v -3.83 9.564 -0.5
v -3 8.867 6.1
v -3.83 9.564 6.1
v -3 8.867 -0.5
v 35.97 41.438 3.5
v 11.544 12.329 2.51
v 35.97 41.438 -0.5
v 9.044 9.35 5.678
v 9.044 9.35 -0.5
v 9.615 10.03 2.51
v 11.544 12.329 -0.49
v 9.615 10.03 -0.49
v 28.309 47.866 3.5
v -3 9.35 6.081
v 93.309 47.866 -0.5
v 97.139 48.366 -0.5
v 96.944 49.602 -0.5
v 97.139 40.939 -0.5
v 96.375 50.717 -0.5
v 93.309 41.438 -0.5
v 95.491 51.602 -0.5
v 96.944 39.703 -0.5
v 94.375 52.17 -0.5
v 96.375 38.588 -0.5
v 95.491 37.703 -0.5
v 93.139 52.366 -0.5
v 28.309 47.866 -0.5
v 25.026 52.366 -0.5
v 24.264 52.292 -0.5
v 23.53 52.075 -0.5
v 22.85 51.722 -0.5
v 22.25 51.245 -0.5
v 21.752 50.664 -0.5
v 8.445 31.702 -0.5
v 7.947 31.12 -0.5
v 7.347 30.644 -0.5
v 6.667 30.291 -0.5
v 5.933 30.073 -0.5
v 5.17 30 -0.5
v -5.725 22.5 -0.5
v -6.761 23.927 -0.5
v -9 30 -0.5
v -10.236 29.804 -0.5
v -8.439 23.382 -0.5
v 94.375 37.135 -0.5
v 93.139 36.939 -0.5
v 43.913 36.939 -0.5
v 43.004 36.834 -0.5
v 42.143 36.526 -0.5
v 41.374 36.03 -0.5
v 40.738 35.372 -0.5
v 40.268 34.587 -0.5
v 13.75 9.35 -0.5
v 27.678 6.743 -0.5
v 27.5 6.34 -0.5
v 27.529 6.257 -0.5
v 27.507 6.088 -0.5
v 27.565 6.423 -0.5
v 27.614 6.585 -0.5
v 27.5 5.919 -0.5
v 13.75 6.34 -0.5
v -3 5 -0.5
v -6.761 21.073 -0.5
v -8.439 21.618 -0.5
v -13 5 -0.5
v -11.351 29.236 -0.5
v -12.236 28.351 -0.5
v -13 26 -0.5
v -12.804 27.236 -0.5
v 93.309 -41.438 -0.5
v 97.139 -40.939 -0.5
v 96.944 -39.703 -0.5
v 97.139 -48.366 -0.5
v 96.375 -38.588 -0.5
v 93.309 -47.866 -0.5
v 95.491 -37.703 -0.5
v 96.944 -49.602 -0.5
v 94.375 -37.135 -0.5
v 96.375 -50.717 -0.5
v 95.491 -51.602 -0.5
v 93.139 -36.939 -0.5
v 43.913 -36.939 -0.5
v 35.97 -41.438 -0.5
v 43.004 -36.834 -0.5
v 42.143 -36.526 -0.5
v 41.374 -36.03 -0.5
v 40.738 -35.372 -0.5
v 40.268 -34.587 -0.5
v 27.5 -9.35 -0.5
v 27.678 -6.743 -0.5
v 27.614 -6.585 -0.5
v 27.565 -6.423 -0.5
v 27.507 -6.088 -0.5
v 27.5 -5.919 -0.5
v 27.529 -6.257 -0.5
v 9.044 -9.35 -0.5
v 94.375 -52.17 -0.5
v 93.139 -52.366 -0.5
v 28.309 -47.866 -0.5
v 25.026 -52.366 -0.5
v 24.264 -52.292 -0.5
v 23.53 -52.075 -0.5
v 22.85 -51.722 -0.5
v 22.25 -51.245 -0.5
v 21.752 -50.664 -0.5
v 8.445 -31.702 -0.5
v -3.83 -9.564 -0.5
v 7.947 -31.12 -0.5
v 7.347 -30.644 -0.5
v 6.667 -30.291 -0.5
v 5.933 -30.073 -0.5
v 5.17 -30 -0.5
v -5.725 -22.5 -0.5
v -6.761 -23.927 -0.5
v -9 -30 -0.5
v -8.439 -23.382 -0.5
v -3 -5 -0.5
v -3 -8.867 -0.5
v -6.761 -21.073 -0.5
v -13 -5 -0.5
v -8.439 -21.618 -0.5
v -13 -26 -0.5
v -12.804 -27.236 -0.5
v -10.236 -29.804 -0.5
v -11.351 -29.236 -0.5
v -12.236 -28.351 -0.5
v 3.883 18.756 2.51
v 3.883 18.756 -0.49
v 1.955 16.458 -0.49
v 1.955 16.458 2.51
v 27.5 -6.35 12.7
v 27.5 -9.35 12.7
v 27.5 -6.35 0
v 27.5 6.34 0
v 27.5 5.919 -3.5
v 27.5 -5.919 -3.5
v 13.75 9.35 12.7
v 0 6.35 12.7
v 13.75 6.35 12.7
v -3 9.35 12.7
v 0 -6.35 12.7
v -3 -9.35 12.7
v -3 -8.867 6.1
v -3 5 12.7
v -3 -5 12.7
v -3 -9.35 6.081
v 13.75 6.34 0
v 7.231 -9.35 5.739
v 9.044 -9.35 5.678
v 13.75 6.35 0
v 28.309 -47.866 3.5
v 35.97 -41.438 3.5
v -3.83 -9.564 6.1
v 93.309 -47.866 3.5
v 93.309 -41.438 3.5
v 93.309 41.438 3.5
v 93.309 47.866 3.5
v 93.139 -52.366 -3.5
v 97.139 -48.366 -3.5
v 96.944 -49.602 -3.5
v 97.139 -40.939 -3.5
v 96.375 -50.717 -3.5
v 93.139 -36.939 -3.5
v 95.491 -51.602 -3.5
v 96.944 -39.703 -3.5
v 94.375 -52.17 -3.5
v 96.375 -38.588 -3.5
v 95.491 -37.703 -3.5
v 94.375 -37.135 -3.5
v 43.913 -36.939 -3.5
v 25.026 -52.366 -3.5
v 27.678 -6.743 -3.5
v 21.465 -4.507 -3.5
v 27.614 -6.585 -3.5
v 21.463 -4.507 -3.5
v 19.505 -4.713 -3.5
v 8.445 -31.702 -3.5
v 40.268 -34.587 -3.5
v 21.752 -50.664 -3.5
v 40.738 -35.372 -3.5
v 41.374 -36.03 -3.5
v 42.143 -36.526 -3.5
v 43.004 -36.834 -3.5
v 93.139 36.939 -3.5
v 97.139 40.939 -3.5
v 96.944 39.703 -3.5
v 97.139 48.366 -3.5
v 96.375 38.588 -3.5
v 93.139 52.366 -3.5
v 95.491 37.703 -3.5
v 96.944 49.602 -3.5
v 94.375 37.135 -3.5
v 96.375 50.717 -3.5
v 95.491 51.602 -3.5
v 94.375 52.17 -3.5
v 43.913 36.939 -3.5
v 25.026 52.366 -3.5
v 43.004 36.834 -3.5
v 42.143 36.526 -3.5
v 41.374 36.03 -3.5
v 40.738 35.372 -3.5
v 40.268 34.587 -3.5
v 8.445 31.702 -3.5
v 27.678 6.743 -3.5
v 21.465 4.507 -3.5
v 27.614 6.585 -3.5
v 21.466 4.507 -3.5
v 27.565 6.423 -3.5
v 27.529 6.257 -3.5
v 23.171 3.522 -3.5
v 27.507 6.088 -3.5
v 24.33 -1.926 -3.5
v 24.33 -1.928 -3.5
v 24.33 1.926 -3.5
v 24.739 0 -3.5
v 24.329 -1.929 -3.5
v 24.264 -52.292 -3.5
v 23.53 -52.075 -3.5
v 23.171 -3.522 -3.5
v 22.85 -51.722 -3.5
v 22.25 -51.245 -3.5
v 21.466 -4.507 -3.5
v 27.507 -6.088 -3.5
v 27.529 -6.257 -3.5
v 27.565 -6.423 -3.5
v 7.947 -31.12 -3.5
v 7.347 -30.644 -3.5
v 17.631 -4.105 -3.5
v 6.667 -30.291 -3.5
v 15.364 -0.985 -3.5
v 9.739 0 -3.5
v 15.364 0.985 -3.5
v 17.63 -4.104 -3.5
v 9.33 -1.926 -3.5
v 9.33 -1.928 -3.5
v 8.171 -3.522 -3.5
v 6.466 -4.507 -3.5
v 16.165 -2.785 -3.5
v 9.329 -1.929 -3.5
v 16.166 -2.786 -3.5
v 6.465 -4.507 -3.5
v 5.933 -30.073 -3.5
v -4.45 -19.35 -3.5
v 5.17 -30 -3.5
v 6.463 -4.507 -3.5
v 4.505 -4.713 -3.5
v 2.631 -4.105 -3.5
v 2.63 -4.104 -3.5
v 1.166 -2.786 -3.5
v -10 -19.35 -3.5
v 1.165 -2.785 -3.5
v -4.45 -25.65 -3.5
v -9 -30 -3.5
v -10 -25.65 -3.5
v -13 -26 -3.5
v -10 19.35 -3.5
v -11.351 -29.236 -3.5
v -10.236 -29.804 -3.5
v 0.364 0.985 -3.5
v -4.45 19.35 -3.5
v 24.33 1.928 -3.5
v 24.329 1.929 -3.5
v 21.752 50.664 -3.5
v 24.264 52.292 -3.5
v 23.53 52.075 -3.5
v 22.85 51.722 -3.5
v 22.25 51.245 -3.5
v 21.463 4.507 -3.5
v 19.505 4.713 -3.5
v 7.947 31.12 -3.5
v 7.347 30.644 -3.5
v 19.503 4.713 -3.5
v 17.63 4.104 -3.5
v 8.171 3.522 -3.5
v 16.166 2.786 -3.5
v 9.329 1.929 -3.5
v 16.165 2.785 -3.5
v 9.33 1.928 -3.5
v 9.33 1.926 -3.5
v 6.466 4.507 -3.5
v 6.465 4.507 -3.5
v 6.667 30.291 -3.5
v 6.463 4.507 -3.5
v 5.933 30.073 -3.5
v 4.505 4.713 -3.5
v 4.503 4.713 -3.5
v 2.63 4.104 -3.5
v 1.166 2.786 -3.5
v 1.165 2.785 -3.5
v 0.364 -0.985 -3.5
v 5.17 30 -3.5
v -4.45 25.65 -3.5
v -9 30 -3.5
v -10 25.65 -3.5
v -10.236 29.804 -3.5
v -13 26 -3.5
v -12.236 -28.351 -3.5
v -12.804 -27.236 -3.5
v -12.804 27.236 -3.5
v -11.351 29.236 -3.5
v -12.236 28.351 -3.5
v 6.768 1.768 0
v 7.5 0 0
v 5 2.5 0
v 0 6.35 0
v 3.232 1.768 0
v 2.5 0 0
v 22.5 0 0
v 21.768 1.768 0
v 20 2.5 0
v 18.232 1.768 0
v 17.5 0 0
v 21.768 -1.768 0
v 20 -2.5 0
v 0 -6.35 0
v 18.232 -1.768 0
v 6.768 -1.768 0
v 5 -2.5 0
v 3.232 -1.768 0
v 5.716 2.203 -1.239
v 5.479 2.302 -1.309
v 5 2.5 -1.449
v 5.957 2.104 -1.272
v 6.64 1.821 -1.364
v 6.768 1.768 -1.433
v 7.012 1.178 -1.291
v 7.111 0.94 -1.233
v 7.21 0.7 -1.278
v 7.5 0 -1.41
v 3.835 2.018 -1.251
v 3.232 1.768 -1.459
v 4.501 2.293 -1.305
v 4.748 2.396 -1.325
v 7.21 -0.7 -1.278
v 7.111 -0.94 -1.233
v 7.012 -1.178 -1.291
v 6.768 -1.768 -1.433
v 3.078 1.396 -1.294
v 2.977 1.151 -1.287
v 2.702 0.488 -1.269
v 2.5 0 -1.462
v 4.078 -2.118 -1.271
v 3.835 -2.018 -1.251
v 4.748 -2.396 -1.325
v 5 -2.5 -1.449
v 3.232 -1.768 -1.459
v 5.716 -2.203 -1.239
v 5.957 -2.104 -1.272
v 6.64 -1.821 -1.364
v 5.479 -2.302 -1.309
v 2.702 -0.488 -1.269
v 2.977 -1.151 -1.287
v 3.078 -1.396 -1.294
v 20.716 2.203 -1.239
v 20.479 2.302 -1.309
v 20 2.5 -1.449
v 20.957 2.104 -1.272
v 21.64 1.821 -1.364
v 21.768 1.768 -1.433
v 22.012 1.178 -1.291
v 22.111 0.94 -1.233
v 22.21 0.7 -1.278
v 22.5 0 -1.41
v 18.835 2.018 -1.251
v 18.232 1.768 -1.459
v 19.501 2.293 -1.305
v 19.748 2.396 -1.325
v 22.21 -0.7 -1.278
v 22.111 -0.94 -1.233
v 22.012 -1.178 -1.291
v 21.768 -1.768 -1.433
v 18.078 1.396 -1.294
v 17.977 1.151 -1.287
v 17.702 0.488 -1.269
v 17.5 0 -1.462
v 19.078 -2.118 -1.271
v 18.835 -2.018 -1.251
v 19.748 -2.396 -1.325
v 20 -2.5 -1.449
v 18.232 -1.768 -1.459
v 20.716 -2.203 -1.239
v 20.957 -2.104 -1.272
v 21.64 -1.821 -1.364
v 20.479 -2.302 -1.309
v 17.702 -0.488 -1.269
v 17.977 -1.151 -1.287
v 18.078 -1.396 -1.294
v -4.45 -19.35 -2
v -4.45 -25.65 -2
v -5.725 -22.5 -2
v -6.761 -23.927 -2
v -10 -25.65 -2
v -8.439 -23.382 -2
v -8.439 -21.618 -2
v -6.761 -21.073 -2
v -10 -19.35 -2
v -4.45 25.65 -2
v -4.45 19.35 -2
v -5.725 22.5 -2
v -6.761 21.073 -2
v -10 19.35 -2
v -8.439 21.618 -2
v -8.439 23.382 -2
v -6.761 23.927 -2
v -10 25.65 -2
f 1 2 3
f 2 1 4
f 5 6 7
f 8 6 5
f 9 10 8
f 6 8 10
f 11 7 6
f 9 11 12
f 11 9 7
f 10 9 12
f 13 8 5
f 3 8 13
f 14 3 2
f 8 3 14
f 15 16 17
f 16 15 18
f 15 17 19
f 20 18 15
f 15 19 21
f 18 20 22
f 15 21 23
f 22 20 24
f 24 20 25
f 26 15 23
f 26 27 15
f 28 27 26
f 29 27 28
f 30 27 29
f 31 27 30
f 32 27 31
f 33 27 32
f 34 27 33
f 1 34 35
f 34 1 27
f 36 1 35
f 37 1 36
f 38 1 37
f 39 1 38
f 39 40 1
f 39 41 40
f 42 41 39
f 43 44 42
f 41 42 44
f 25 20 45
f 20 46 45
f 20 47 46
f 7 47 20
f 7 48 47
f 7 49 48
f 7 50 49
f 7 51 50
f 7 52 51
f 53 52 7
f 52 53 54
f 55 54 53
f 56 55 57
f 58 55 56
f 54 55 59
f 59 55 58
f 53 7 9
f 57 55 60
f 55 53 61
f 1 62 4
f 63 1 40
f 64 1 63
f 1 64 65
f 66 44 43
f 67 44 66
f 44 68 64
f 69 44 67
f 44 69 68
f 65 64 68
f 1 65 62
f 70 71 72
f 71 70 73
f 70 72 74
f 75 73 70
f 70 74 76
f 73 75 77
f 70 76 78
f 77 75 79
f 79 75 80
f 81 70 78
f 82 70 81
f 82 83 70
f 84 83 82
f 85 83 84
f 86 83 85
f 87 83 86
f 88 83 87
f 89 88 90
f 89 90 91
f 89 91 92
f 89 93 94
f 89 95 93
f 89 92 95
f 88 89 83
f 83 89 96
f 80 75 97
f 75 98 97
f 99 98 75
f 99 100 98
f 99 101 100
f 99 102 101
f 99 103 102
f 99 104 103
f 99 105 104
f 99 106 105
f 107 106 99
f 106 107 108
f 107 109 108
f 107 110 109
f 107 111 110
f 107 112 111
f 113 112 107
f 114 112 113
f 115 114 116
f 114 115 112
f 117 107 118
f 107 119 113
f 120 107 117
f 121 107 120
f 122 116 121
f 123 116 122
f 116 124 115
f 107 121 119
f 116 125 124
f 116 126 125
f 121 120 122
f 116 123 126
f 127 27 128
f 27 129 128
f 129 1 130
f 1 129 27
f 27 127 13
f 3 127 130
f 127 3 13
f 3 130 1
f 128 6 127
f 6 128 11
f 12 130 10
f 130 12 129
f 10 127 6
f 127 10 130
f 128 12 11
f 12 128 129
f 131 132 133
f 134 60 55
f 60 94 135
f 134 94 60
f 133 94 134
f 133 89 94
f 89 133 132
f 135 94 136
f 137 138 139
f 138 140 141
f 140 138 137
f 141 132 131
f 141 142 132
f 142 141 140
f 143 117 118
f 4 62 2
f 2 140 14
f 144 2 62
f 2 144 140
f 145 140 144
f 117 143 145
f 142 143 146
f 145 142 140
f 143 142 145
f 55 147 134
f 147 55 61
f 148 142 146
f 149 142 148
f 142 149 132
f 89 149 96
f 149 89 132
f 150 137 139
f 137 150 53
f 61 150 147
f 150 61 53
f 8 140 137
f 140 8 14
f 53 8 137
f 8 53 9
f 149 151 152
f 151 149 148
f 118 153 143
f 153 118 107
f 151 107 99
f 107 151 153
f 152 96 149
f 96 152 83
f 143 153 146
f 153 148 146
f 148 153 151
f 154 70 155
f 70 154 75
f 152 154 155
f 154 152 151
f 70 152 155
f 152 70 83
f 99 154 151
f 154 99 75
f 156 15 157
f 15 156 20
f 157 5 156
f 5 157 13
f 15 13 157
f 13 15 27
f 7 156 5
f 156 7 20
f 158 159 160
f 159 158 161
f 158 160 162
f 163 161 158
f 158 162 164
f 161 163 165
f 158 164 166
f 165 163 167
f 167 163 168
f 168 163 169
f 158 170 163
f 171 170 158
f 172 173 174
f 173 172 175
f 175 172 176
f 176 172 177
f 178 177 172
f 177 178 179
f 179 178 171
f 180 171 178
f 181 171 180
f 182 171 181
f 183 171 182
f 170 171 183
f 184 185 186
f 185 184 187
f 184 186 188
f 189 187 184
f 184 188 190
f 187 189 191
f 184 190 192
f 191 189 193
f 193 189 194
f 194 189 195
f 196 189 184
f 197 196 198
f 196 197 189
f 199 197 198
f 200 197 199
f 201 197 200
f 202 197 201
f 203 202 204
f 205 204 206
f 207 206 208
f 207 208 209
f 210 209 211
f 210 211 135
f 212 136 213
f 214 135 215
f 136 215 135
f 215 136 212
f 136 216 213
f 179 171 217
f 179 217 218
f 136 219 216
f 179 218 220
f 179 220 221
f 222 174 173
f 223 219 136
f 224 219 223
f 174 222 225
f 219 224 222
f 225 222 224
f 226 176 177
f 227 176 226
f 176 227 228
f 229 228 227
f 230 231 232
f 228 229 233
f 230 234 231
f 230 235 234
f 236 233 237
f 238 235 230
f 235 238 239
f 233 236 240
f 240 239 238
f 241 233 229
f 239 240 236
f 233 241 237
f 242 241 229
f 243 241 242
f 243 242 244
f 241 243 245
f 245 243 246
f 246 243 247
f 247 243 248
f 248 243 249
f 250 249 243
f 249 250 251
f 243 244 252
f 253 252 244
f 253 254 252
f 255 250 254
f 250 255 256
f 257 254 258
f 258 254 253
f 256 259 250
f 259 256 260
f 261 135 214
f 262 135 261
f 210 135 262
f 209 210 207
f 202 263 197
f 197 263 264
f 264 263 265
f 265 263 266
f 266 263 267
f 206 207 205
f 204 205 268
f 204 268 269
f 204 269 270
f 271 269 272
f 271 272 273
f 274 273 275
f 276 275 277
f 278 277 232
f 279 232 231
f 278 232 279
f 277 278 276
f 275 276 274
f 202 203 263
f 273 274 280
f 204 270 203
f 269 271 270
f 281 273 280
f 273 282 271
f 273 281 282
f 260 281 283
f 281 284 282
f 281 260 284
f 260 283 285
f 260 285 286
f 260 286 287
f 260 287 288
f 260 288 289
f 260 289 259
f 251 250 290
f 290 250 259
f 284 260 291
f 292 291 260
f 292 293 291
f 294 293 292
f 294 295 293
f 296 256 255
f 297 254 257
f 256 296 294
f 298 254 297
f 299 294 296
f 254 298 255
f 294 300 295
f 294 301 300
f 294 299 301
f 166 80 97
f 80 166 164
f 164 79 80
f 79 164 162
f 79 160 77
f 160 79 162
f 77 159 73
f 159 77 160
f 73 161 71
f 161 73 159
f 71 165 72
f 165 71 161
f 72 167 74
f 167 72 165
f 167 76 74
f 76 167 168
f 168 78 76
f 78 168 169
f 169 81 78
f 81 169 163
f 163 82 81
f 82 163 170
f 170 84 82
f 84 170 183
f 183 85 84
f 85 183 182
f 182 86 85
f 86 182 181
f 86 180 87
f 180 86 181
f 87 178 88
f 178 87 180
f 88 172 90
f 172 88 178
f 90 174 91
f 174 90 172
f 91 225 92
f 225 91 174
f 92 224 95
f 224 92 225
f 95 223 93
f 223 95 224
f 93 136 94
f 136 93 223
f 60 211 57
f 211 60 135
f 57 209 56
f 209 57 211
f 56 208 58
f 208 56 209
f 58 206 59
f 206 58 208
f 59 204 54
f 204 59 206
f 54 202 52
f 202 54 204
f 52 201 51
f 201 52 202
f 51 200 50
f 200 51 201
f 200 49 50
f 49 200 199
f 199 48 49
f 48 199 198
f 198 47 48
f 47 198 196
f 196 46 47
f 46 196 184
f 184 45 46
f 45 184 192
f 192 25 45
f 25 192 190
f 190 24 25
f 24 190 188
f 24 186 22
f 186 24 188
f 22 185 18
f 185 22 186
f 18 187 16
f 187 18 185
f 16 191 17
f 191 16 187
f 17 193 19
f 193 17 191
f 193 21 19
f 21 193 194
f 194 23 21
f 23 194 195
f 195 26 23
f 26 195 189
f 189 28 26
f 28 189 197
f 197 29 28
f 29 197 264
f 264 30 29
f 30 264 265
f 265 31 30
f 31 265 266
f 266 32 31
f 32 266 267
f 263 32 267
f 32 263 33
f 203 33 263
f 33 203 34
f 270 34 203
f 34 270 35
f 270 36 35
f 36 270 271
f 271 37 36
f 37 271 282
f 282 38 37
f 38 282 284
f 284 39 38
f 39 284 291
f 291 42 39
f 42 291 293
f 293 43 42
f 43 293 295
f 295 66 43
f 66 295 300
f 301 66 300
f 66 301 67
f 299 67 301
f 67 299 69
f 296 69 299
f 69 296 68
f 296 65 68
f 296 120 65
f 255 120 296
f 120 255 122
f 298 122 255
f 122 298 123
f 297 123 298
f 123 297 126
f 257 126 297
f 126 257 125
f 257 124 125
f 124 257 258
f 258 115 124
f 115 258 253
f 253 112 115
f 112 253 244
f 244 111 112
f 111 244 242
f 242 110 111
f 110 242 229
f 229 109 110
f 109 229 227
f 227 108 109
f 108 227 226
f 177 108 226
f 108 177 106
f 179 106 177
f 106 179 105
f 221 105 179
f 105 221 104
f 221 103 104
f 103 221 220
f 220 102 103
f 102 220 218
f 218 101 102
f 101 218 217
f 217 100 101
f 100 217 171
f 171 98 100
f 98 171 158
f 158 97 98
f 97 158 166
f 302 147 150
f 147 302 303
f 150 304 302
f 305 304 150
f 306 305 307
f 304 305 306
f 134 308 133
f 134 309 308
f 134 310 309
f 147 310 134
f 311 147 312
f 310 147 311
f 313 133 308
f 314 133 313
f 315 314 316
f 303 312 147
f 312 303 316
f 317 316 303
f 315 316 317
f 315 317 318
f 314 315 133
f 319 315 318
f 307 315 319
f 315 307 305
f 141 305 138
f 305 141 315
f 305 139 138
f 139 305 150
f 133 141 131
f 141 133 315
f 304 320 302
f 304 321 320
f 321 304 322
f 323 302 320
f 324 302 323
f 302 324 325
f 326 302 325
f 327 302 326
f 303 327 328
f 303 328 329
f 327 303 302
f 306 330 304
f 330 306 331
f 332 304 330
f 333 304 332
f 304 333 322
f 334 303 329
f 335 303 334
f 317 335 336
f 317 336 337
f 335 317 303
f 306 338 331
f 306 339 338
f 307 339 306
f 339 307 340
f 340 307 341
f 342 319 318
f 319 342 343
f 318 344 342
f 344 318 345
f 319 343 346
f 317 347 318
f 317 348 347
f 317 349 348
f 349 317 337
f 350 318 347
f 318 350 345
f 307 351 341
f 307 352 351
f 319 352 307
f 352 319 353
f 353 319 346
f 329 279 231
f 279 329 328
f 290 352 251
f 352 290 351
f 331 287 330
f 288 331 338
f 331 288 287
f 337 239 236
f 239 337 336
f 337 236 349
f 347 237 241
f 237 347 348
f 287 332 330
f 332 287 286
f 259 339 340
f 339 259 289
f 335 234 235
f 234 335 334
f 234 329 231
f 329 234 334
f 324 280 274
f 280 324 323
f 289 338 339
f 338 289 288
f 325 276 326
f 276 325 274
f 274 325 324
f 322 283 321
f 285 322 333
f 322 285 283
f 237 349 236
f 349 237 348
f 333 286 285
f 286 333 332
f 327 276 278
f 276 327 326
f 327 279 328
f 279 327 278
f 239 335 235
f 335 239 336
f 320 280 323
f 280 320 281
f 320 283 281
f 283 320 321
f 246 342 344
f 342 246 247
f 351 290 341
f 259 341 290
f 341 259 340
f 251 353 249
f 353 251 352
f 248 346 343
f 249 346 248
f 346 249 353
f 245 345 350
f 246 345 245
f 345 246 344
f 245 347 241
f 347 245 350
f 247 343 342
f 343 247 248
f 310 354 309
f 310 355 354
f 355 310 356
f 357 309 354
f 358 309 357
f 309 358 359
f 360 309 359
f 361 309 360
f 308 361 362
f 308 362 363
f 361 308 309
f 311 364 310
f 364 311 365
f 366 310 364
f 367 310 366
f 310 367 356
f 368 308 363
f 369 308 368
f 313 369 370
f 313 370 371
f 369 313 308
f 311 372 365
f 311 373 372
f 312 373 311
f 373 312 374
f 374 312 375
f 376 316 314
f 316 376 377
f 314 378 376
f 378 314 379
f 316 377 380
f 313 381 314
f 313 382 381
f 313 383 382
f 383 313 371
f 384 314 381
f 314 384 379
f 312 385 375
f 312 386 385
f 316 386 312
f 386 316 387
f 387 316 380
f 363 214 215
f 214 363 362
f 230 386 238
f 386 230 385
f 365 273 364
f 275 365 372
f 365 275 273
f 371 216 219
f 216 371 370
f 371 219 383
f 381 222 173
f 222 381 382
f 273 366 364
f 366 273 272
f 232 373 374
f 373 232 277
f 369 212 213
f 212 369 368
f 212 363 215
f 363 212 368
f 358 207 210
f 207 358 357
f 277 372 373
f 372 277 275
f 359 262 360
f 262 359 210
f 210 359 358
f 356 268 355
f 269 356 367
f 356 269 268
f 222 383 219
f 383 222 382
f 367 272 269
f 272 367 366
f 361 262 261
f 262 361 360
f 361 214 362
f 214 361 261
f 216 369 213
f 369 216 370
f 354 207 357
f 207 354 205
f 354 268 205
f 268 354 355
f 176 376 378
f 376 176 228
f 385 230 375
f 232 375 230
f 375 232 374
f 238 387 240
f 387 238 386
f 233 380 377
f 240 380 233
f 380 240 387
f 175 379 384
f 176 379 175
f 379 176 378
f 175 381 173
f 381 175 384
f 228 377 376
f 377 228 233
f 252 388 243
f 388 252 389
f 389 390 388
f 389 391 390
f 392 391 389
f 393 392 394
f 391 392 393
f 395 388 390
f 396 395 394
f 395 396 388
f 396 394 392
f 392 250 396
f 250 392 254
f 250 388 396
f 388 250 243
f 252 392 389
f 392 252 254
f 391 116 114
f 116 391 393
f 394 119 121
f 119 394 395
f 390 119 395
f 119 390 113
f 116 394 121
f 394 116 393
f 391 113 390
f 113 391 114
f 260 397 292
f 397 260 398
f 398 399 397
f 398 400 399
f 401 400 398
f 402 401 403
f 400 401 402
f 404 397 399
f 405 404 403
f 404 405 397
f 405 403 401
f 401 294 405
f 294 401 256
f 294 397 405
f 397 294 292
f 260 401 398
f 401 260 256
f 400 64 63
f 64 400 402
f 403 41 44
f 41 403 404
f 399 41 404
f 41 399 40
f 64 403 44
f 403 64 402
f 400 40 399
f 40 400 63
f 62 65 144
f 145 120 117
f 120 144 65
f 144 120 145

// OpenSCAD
// file: _shared-vars.scad
carafeWidth = 133;

footWidth = 25; // TODO
footDepth = 20; // TODO
footDistanceX = 130; // TODO
footDistanceY = 120; // TODO

loadCellWidth = 12.7;
loadCellThickness = 12.7;
loadCellLength = 80;
loadCellBoltDistance = 15;
loadCellPlateBoltDiameter = 4;
loadCellPlateBoltInset = 5;
loadCellBaseBoltDiameter = 5;

loadCellCarafeOffset = (carafeWidth - loadCellLength) / 4;
// main file
include <./_shared-vars.scad>
include <./lib/Round-Anything/polyround.scad>;

attachPointBaseThickness = 0.5;
attachPointWallThickness = 3;
attachPointLength = loadCellPlateBoltInset * 2 + loadCellBoltDistance + loadCellBaseBoltDiameter / 2;
attachPointShortWallLength = attachPointLength / 2;
attachPointWidth = loadCellWidth + attachPointWallThickness * 2;
attachPointHeight = attachPointBaseThickness + loadCellThickness;

backAttachPointSupportLength = 10;
supportWidth = 10;
supportTipHeight = 4;

wireChannel = 3;
wireChannelOffset = 9;

baseLength = backAttachPointSupportLength + attachPointWallThickness + attachPointLength;

boltHeadHeight = 3.5;
boltHeadDiameter = 9.5;

assemblyNutThickness = 2.5;
assemblyNutWidth = 6.3;
assemblyNutHeight = 5.55;
assemblyBoltDiameter = 3;
assemblyBoltDistance = 45;
assemblyBoltInset = 3;

armAngle = 50;
armAngledLength = 50;
armStraightLength = 65;
armSizeX = armAngledLength * cos(armAngle);
armSizeY = armAngledLength * sin(armAngle);
armWidth = 12;
armOutsideOffsetX = armWidth * sin(armAngle);
armOutsideOffsetY = armWidth * cos(armAngle);
armStraightExtraX = supportWidth / 2 * sin(armAngle);
armStraightWidth = supportWidth * cos(armAngle);
armThickness = 3;
armSupportHeight = attachPointHeight / 2;
shoulderWidth = 60;

armEndRadius = 5;
innerRadius = 2;
outerRadius = 4;

module loadCellBase() {
   difference() {
      union() {
         translate([ -attachPointWallThickness, -attachPointWidth / 2, -attachPointBaseThickness ])
         difference() {
            union() {
               cube([ attachPointLength + attachPointWallThickness, attachPointWidth - attachPointWallThickness - 0.01, attachPointHeight ]);

               translate([ 0, attachPointWidth - attachPointWallThickness - 1, 0 ])
               cube([ attachPointShortWallLength + attachPointWallThickness, attachPointWallThickness + 1, attachPointHeight ]);

               translate([ attachPointWallThickness, loadCellWidth + attachPointWallThickness, 0 ])
               rotate([ 90, 0, armAngle ])
               difference() {
                  translate([ 0, 0, -supportWidth / 2 ])
                  linear_extrude(supportWidth)
                  polygon([
                     [ 0, 0 ],
                     [ armAngledLength, 0 ],
                     [ armAngledLength, supportTipHeight ],
                     [ 0, armSupportHeight ],
                  ]);

                  translate([ wireChannelOffset, 0.01, -supportWidth/2 - 1 ])
                  cube([ wireChannel, wireChannel, supportWidth + 2 ]);
               }

               translate([ attachPointWallThickness, attachPointWallThickness, 0 ])
               rotate([ 90, 0, -armAngle ])
               translate([ 0, 0, -supportWidth / 2 ])
               linear_extrude(supportWidth)
               polygon([
                  [ 0, 0 ],
                  [ armAngledLength, 0 ],
                  [ armAngledLength, supportTipHeight ],
                  [ 0, armSupportHeight ],
               ]);

               translate([ armSizeX + attachPointWallThickness - armStraightExtraX, -armSizeY + attachPointWallThickness - armStraightWidth / 2, 0 ])
               cube([ armStraightLength, armStraightWidth, supportTipHeight ]);

               translate([ armSizeX + attachPointWallThickness - armStraightExtraX, armSizeY - armStraightWidth / 2 + loadCellWidth + attachPointWallThickness, 0 ])
               cube([ armStraightLength, armStraightWidth, supportTipHeight ]);

               translate([ attachPointWallThickness, attachPointWidth / 2, -armThickness ])
               linear_extrude(armThickness)
               polygon(polyRound([
                  [ -backAttachPointSupportLength - attachPointWallThickness, -shoulderWidth / 2, outerRadius ],
                  [ baseLength / 2 - backAttachPointSupportLength - attachPointWallThickness, -shoulderWidth / 2, outerRadius ],
                  [ armSizeX - armOutsideOffsetX, -armSizeY - loadCellWidth / 2 - armOutsideOffsetY, outerRadius ],
                  [ armSizeX + armStraightLength, -armSizeY - loadCellWidth / 2 - armOutsideOffsetY, outerRadius ],
                  [ armSizeX + armStraightLength, -armSizeY - loadCellWidth / 2 + armOutsideOffsetY, outerRadius ],
                  [ armSizeX + armOutsideOffsetX, -armSizeY - loadCellWidth / 2 + armOutsideOffsetY, outerRadius ],
                  [ baseLength - backAttachPointSupportLength - attachPointWallThickness, -loadCellWidth / 2, innerRadius ],
                  [ baseLength - backAttachPointSupportLength - attachPointWallThickness, loadCellWidth / 2, innerRadius ],


                  [ armSizeX + armOutsideOffsetX, armSizeY + loadCellWidth / 2 - armOutsideOffsetY, outerRadius ],
                  [ armSizeX + armStraightLength, armSizeY + loadCellWidth / 2 - armOutsideOffsetY, outerRadius ],
                  [ armSizeX + armStraightLength, armSizeY + loadCellWidth / 2 + armOutsideOffsetY, outerRadius ],
                  [ armSizeX - armOutsideOffsetX, armSizeY + loadCellWidth / 2 + armOutsideOffsetY, outerRadius ],
                  [ baseLength / 2 - backAttachPointSupportLength - attachPointWallThickness, shoulderWidth / 2, outerRadius ],

                  [ -backAttachPointSupportLength - attachPointWallThickness, shoulderWidth / 2, outerRadius ],
               ]));

            }

            translate([ attachPointWallThickness, attachPointWallThickness, attachPointBaseThickness ])
               cube([ attachPointLength + 1, loadCellWidth, attachPointHeight + 10 ]);
            translate([ attachPointWallThickness + loadCellPlateBoltInset, attachPointWidth / 2, - armThickness -1  ])
               cylinder(r = loadCellBaseBoltDiameter / 2, h = attachPointBaseThickness + armThickness + 2);

            translate([ attachPointWallThickness + loadCellPlateBoltInset, attachPointWidth / 2, - armThickness - 0.01  ])
               cylinder(loadCellBaseBoltDiameter / 2, boltHeadDiameter / 2, h = boltHeadHeight);

            translate([ attachPointWallThickness + loadCellPlateBoltInset + loadCellBoltDistance, attachPointWidth / 2, - armThickness -1  ])
               cylinder(r = loadCellBaseBoltDiameter / 2, h = attachPointBaseThickness + armThickness + 2);

            translate([ attachPointWallThickness + loadCellPlateBoltInset + loadCellBoltDistance, attachPointWidth / 2, - armThickness -0.01  ])
               cylinder(loadCellBaseBoltDiameter / 2, boltHeadDiameter / 2, h = boltHeadHeight);

            translate([ -backAttachPointSupportLength + assemblyBoltInset, attachPointWidth / 2 - assemblyBoltDistance / 2 -assemblyNutWidth/2, -armThickness -1 ])
            cube([ assemblyNutHeight, assemblyNutWidth, assemblyNutThickness ]);

            translate([ -backAttachPointSupportLength + assemblyBoltInset + assemblyNutHeight / 2, attachPointWidth / 2 - assemblyBoltDistance / 2, -armThickness -1 ])
            cylinder(r = assemblyBoltDiameter / 2, h = armThickness + 2);

            translate([ -backAttachPointSupportLength + assemblyBoltInset, attachPointWidth / 2 + assemblyBoltDistance / 2 - assemblyNutWidth/2, -armThickness -1 ])
            cube([ assemblyNutHeight, assemblyNutWidth, assemblyNutThickness ]);

            translate([ -backAttachPointSupportLength + assemblyBoltInset + assemblyNutHeight / 2, attachPointWidth / 2 + assemblyBoltDistance / 2, -armThickness -1 ])
            cylinder(r = assemblyBoltDiameter / 2, h = armThickness + 2);
         }


         translate([ -attachPointWallThickness, supportWidth / 2, -attachPointBaseThickness ])
         rotate([ 90, 0 ])
         linear_extrude(supportWidth)
         polygon([
            [ 0, 0 ],
            [ 0, attachPointHeight ],
            [ -backAttachPointSupportLength, 0 ],
         ]);
      }
   }
}

loadCellBase();
